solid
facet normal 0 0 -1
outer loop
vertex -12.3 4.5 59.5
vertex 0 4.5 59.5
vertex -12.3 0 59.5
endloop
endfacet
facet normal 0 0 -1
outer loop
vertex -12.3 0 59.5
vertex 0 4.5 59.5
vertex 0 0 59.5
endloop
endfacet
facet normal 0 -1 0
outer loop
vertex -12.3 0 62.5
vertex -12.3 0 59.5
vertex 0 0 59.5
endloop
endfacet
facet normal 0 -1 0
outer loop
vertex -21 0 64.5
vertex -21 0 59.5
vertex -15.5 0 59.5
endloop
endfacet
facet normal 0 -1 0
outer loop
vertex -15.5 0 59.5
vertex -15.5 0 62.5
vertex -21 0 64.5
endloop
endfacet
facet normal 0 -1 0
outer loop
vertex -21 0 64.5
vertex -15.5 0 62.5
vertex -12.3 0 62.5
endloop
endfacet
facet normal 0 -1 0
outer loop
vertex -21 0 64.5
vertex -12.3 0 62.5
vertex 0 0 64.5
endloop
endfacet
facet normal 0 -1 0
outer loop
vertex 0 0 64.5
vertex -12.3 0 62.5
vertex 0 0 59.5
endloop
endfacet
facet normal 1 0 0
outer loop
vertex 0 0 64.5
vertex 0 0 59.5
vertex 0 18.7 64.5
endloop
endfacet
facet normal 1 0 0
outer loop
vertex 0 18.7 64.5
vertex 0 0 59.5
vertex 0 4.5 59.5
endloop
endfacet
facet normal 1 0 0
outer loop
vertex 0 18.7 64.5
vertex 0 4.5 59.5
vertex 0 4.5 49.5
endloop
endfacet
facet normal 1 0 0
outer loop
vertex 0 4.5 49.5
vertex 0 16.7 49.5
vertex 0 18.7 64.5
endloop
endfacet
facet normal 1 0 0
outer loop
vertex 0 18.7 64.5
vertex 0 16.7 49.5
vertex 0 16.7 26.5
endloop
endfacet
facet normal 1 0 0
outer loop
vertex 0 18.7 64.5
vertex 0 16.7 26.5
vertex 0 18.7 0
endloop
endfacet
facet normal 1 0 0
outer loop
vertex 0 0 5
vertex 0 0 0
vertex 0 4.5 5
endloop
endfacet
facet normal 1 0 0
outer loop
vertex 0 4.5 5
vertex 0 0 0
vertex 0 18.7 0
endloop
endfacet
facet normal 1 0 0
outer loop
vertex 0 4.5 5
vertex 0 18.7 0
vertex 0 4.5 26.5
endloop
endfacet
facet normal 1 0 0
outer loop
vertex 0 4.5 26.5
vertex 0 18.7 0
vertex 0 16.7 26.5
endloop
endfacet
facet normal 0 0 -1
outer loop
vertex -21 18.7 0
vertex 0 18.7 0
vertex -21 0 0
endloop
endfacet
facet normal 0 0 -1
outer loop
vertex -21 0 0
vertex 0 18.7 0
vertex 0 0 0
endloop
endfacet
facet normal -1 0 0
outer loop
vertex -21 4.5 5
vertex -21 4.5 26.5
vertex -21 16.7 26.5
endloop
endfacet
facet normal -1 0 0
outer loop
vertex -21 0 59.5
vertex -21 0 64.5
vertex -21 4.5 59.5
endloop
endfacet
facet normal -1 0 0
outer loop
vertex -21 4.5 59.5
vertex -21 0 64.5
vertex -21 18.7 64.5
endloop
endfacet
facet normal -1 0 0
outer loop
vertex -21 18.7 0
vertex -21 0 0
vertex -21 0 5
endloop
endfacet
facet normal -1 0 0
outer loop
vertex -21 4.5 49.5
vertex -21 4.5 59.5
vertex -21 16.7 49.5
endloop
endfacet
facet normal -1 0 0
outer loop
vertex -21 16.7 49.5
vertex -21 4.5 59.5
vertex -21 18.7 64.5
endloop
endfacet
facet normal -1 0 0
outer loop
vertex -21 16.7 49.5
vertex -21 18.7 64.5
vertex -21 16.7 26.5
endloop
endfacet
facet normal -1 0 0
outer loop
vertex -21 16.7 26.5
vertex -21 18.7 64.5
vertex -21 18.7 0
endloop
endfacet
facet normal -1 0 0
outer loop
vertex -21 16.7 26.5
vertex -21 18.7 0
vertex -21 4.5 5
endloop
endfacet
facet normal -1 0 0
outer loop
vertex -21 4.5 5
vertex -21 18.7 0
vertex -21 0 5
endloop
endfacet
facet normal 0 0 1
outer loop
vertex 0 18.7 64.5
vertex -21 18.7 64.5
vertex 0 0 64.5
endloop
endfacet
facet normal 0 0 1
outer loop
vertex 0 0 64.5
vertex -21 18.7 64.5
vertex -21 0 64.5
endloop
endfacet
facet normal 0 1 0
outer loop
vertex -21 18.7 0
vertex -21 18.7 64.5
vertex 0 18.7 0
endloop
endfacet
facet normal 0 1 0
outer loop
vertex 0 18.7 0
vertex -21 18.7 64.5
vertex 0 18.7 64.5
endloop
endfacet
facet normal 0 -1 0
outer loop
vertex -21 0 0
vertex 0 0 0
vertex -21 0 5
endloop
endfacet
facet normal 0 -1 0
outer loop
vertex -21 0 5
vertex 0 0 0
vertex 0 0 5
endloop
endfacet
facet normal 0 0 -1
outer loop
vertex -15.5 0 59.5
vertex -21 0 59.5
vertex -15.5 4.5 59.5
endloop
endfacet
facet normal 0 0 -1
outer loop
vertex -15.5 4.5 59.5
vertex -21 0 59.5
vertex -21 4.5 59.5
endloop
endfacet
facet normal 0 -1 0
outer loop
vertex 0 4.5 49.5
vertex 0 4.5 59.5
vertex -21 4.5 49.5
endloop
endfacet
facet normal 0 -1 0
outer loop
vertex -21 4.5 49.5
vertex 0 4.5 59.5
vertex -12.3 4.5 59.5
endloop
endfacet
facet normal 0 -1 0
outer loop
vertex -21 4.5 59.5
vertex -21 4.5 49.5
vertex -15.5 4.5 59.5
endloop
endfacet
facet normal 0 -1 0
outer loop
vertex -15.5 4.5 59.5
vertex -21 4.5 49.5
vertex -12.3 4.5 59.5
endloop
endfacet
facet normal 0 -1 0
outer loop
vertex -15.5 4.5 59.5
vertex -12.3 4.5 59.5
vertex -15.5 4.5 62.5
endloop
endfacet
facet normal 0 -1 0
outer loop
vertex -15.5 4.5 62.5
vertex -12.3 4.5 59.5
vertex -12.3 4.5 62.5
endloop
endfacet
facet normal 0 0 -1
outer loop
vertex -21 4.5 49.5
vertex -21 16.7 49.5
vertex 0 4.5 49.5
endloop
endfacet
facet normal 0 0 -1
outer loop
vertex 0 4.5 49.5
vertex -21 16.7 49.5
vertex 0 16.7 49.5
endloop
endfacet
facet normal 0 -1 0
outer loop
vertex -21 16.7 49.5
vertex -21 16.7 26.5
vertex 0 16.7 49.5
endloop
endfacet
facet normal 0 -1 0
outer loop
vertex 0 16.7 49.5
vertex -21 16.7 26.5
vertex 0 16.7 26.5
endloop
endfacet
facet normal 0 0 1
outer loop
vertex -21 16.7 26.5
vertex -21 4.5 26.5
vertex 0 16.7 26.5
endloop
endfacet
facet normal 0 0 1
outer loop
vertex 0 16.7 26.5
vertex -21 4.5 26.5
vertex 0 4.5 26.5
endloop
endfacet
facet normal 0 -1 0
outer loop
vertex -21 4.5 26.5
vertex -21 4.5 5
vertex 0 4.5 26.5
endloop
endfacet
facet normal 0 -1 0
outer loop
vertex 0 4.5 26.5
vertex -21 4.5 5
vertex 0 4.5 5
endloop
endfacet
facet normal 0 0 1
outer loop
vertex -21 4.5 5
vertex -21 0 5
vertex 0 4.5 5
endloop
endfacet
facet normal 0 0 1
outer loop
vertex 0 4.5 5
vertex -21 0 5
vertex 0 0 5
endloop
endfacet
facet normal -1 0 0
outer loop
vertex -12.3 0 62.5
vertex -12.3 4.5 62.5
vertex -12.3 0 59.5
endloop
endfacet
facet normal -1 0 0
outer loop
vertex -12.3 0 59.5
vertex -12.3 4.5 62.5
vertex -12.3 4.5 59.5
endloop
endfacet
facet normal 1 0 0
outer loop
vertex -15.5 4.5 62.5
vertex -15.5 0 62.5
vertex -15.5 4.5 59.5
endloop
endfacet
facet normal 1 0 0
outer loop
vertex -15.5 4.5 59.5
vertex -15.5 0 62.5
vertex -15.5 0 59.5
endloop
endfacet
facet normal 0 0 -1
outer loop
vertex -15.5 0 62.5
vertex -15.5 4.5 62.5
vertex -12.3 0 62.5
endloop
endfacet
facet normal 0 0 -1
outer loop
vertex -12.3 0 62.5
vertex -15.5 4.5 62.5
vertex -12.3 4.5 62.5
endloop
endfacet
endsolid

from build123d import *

# Parameters (mm, degrees)
SKETCH1_W           = 21
SKETCH1_H           = 64.5
BOSS_EXTRUDE1_DEPTH = 18.7
CUT_EXTRUDE1_DEPTH  = 22
SKETCH3_W           = 3.2
SKETCH3_H           = 4.5
CUT_EXTRUDE2_DEPTH  = 3


with BuildPart() as part:
    # Sketch1 → Boss-Extrude1 (new body)
    with BuildSketch(Plane(origin=(0, 0, 0), x_dir=(1, 0, 0), z_dir=(0, 1, 0))):
        with Locations((-10.5, -32.25)):
            Rectangle(SKETCH1_W, SKETCH1_H)
    extrude(amount=BOSS_EXTRUDE1_DEPTH)

    # Sketch2 → Cut-Extrude1 (cut, through all)
    with BuildSketch(Plane(origin=(0, 0, 0), x_dir=(0, 0, -1), z_dir=(1, 0, 0))):
        Polygon((-59.5, 0), (-5, 0), (-5, 4.5), (-26.5, 4.5), (-26.5, 16.7), (-49.5, 16.7), (-49.5, 4.5), (-59.5, 4.5), align=None)
    extrude(amount=-CUT_EXTRUDE1_DEPTH, mode=Mode.SUBTRACT)

    # Sketch3 → Cut-Extrude2 (cut)
    with BuildSketch(Plane(origin=(0, 0, 59.5), x_dir=(-1, 0, 0), z_dir=(0, 0, -1))):
        with Locations((13.9, 2.25)):
            Rectangle(SKETCH3_W, SKETCH3_H)
    extrude(amount=-CUT_EXTRUDE2_DEPTH, mode=Mode.SUBTRACT)


solid = part.part
